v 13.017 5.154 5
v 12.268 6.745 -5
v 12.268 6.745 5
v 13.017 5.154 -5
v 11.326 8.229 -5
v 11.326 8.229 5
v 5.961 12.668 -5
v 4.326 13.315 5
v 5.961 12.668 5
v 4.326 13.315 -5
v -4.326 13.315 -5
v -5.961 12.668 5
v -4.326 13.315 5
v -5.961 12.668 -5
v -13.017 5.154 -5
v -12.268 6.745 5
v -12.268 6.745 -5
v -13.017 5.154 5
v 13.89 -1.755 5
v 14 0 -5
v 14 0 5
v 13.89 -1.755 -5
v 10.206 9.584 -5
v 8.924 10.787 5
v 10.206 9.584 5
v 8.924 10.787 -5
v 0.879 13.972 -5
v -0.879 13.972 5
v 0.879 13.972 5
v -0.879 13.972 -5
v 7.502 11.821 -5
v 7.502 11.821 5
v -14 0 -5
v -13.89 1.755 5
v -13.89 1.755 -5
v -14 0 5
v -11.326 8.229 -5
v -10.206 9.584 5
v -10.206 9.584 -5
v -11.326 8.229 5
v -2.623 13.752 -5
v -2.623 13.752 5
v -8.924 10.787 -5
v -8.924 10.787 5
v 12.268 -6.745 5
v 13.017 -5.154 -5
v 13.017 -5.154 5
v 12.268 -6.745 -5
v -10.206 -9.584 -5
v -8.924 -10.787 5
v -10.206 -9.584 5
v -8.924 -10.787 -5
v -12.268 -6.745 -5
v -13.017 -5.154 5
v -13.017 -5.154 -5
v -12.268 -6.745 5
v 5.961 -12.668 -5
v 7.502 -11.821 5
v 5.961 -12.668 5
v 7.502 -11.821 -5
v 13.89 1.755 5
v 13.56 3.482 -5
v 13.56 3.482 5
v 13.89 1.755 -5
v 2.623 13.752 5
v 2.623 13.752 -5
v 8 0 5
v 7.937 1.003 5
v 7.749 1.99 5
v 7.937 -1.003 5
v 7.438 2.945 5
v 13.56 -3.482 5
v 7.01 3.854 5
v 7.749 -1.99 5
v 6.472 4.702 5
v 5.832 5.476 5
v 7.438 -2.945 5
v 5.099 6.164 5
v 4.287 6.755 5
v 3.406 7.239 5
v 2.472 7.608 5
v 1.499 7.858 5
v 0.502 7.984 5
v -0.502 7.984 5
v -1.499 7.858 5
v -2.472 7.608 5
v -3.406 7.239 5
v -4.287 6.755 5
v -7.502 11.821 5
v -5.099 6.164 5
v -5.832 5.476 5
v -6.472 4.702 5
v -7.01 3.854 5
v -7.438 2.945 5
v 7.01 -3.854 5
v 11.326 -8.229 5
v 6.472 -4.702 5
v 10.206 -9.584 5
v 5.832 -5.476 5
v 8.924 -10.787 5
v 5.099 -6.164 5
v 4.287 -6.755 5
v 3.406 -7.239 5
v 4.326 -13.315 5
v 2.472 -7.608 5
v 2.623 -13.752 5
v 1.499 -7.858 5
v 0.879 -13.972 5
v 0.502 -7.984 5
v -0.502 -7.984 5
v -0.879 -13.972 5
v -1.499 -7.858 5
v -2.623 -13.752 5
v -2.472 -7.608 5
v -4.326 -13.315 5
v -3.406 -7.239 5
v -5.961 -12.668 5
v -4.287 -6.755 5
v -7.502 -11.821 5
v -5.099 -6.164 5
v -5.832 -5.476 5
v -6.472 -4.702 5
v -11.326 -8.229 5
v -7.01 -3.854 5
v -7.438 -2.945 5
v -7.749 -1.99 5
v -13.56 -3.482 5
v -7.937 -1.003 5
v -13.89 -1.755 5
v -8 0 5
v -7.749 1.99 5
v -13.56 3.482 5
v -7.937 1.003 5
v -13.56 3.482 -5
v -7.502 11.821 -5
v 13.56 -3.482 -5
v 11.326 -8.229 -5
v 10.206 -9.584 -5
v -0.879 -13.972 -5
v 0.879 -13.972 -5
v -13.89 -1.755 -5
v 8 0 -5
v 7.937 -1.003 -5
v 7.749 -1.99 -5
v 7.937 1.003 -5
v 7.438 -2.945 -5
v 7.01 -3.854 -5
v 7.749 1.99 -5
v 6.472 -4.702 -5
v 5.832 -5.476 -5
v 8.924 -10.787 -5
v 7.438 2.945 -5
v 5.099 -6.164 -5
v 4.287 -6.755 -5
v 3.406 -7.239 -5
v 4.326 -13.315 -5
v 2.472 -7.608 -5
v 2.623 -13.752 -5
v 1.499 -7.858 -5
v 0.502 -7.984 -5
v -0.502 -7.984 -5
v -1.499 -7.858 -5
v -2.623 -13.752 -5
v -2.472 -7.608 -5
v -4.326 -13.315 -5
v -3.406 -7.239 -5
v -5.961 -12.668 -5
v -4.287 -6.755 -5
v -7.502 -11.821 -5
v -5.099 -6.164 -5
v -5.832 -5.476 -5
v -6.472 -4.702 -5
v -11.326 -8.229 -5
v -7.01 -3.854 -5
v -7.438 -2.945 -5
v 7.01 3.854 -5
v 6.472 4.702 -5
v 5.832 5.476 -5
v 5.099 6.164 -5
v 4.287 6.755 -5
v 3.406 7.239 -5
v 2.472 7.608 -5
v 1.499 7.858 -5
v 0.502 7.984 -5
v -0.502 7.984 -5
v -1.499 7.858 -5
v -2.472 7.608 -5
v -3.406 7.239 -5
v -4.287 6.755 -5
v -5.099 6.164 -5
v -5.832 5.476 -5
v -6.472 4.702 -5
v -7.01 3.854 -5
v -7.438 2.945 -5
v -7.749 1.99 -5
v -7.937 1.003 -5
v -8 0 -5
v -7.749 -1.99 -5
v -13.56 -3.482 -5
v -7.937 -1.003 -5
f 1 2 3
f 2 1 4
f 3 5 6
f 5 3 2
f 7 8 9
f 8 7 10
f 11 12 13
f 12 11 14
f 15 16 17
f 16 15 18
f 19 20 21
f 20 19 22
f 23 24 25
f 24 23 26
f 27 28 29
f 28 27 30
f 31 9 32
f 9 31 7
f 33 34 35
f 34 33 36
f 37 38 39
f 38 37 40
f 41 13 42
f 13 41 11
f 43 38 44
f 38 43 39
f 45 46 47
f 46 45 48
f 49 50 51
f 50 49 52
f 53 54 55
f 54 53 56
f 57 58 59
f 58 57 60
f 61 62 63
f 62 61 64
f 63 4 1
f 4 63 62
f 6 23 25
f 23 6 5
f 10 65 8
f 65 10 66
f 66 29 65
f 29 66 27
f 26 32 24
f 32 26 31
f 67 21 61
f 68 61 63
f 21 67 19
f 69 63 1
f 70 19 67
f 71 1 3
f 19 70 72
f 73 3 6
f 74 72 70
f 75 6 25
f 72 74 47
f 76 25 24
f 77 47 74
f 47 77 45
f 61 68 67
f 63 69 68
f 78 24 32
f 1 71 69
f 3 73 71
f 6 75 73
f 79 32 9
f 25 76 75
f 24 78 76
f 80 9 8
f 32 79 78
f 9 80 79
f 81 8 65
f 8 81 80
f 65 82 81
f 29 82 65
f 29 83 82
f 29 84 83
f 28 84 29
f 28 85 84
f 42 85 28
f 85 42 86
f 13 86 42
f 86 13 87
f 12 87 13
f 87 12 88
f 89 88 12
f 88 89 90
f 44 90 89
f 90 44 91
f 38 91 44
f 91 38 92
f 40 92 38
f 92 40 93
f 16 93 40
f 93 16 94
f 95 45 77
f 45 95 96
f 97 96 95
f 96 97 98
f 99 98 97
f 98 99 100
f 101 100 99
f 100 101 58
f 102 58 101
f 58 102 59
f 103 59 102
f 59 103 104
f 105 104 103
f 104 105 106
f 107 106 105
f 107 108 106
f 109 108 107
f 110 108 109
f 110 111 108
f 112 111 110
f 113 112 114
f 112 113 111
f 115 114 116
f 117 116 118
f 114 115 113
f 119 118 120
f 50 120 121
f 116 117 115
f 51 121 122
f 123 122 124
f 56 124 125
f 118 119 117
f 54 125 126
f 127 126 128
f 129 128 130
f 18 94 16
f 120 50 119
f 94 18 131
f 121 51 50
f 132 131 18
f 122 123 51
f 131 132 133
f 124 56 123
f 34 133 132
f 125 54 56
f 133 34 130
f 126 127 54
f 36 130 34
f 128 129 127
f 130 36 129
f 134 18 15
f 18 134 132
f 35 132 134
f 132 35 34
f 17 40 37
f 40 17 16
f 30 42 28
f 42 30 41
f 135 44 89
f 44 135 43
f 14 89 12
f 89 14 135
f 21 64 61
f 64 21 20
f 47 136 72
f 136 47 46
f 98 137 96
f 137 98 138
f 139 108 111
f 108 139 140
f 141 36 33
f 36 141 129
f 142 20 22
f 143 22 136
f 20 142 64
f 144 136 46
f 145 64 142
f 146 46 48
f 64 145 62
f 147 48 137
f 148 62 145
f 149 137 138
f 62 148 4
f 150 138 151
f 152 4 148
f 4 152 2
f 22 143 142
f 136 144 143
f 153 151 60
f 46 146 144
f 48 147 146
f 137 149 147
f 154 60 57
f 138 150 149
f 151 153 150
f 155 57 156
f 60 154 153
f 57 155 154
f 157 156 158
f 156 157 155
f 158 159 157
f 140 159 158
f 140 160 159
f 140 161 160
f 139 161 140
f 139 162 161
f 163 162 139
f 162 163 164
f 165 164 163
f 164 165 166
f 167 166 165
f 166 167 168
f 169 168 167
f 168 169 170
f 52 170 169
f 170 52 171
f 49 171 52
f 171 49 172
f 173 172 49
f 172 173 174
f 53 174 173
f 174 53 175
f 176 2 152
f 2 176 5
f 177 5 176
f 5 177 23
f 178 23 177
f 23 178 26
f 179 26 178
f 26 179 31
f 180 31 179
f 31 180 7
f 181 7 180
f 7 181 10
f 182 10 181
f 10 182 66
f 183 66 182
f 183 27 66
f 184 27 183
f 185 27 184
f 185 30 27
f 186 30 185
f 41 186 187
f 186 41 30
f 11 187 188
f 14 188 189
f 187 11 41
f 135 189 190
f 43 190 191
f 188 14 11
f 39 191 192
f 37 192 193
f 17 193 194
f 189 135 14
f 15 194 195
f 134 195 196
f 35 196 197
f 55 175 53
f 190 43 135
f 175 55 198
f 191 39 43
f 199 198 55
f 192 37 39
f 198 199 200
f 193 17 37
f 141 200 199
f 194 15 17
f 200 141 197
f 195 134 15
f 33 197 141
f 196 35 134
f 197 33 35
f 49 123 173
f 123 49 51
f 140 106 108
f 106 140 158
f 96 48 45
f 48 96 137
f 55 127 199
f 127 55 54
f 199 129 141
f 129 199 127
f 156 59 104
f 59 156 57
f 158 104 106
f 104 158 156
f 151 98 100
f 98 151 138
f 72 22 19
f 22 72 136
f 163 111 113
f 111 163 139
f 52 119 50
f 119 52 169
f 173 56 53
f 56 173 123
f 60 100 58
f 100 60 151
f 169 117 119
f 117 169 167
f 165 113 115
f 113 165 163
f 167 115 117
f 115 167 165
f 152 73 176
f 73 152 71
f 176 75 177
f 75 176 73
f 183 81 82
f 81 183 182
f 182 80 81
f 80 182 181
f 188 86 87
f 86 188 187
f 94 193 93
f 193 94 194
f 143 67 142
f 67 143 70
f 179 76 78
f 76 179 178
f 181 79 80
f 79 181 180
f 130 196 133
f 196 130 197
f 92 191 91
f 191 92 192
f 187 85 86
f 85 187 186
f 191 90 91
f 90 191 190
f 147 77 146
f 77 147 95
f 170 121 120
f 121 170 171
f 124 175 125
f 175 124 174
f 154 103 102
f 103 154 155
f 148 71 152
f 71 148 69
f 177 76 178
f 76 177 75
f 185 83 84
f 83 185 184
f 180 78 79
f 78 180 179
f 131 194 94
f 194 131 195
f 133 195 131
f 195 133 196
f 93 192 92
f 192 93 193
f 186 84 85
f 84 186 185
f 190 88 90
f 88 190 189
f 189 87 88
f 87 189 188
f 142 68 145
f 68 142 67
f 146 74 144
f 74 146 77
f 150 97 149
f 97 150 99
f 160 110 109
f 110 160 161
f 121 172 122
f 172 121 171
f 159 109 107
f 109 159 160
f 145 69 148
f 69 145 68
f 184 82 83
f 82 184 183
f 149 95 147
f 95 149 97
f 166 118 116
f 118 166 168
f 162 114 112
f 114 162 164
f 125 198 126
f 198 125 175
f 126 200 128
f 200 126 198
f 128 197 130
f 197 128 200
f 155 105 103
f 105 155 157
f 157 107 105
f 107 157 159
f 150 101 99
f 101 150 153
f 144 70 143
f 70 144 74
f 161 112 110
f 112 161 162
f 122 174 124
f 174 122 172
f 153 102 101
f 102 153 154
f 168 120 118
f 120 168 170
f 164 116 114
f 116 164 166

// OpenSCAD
$fn = 50;


difference() {
	union() {
		translate(v = [0, 0, -5.0000000000]) {
			cylinder(h = 10, r = 14.0000000000);
		}
	}
	union() {
		translate(v = [0, 0, -100.0000000000]) {
			cylinder(h = 200, r = 8);
		}
	}
}
